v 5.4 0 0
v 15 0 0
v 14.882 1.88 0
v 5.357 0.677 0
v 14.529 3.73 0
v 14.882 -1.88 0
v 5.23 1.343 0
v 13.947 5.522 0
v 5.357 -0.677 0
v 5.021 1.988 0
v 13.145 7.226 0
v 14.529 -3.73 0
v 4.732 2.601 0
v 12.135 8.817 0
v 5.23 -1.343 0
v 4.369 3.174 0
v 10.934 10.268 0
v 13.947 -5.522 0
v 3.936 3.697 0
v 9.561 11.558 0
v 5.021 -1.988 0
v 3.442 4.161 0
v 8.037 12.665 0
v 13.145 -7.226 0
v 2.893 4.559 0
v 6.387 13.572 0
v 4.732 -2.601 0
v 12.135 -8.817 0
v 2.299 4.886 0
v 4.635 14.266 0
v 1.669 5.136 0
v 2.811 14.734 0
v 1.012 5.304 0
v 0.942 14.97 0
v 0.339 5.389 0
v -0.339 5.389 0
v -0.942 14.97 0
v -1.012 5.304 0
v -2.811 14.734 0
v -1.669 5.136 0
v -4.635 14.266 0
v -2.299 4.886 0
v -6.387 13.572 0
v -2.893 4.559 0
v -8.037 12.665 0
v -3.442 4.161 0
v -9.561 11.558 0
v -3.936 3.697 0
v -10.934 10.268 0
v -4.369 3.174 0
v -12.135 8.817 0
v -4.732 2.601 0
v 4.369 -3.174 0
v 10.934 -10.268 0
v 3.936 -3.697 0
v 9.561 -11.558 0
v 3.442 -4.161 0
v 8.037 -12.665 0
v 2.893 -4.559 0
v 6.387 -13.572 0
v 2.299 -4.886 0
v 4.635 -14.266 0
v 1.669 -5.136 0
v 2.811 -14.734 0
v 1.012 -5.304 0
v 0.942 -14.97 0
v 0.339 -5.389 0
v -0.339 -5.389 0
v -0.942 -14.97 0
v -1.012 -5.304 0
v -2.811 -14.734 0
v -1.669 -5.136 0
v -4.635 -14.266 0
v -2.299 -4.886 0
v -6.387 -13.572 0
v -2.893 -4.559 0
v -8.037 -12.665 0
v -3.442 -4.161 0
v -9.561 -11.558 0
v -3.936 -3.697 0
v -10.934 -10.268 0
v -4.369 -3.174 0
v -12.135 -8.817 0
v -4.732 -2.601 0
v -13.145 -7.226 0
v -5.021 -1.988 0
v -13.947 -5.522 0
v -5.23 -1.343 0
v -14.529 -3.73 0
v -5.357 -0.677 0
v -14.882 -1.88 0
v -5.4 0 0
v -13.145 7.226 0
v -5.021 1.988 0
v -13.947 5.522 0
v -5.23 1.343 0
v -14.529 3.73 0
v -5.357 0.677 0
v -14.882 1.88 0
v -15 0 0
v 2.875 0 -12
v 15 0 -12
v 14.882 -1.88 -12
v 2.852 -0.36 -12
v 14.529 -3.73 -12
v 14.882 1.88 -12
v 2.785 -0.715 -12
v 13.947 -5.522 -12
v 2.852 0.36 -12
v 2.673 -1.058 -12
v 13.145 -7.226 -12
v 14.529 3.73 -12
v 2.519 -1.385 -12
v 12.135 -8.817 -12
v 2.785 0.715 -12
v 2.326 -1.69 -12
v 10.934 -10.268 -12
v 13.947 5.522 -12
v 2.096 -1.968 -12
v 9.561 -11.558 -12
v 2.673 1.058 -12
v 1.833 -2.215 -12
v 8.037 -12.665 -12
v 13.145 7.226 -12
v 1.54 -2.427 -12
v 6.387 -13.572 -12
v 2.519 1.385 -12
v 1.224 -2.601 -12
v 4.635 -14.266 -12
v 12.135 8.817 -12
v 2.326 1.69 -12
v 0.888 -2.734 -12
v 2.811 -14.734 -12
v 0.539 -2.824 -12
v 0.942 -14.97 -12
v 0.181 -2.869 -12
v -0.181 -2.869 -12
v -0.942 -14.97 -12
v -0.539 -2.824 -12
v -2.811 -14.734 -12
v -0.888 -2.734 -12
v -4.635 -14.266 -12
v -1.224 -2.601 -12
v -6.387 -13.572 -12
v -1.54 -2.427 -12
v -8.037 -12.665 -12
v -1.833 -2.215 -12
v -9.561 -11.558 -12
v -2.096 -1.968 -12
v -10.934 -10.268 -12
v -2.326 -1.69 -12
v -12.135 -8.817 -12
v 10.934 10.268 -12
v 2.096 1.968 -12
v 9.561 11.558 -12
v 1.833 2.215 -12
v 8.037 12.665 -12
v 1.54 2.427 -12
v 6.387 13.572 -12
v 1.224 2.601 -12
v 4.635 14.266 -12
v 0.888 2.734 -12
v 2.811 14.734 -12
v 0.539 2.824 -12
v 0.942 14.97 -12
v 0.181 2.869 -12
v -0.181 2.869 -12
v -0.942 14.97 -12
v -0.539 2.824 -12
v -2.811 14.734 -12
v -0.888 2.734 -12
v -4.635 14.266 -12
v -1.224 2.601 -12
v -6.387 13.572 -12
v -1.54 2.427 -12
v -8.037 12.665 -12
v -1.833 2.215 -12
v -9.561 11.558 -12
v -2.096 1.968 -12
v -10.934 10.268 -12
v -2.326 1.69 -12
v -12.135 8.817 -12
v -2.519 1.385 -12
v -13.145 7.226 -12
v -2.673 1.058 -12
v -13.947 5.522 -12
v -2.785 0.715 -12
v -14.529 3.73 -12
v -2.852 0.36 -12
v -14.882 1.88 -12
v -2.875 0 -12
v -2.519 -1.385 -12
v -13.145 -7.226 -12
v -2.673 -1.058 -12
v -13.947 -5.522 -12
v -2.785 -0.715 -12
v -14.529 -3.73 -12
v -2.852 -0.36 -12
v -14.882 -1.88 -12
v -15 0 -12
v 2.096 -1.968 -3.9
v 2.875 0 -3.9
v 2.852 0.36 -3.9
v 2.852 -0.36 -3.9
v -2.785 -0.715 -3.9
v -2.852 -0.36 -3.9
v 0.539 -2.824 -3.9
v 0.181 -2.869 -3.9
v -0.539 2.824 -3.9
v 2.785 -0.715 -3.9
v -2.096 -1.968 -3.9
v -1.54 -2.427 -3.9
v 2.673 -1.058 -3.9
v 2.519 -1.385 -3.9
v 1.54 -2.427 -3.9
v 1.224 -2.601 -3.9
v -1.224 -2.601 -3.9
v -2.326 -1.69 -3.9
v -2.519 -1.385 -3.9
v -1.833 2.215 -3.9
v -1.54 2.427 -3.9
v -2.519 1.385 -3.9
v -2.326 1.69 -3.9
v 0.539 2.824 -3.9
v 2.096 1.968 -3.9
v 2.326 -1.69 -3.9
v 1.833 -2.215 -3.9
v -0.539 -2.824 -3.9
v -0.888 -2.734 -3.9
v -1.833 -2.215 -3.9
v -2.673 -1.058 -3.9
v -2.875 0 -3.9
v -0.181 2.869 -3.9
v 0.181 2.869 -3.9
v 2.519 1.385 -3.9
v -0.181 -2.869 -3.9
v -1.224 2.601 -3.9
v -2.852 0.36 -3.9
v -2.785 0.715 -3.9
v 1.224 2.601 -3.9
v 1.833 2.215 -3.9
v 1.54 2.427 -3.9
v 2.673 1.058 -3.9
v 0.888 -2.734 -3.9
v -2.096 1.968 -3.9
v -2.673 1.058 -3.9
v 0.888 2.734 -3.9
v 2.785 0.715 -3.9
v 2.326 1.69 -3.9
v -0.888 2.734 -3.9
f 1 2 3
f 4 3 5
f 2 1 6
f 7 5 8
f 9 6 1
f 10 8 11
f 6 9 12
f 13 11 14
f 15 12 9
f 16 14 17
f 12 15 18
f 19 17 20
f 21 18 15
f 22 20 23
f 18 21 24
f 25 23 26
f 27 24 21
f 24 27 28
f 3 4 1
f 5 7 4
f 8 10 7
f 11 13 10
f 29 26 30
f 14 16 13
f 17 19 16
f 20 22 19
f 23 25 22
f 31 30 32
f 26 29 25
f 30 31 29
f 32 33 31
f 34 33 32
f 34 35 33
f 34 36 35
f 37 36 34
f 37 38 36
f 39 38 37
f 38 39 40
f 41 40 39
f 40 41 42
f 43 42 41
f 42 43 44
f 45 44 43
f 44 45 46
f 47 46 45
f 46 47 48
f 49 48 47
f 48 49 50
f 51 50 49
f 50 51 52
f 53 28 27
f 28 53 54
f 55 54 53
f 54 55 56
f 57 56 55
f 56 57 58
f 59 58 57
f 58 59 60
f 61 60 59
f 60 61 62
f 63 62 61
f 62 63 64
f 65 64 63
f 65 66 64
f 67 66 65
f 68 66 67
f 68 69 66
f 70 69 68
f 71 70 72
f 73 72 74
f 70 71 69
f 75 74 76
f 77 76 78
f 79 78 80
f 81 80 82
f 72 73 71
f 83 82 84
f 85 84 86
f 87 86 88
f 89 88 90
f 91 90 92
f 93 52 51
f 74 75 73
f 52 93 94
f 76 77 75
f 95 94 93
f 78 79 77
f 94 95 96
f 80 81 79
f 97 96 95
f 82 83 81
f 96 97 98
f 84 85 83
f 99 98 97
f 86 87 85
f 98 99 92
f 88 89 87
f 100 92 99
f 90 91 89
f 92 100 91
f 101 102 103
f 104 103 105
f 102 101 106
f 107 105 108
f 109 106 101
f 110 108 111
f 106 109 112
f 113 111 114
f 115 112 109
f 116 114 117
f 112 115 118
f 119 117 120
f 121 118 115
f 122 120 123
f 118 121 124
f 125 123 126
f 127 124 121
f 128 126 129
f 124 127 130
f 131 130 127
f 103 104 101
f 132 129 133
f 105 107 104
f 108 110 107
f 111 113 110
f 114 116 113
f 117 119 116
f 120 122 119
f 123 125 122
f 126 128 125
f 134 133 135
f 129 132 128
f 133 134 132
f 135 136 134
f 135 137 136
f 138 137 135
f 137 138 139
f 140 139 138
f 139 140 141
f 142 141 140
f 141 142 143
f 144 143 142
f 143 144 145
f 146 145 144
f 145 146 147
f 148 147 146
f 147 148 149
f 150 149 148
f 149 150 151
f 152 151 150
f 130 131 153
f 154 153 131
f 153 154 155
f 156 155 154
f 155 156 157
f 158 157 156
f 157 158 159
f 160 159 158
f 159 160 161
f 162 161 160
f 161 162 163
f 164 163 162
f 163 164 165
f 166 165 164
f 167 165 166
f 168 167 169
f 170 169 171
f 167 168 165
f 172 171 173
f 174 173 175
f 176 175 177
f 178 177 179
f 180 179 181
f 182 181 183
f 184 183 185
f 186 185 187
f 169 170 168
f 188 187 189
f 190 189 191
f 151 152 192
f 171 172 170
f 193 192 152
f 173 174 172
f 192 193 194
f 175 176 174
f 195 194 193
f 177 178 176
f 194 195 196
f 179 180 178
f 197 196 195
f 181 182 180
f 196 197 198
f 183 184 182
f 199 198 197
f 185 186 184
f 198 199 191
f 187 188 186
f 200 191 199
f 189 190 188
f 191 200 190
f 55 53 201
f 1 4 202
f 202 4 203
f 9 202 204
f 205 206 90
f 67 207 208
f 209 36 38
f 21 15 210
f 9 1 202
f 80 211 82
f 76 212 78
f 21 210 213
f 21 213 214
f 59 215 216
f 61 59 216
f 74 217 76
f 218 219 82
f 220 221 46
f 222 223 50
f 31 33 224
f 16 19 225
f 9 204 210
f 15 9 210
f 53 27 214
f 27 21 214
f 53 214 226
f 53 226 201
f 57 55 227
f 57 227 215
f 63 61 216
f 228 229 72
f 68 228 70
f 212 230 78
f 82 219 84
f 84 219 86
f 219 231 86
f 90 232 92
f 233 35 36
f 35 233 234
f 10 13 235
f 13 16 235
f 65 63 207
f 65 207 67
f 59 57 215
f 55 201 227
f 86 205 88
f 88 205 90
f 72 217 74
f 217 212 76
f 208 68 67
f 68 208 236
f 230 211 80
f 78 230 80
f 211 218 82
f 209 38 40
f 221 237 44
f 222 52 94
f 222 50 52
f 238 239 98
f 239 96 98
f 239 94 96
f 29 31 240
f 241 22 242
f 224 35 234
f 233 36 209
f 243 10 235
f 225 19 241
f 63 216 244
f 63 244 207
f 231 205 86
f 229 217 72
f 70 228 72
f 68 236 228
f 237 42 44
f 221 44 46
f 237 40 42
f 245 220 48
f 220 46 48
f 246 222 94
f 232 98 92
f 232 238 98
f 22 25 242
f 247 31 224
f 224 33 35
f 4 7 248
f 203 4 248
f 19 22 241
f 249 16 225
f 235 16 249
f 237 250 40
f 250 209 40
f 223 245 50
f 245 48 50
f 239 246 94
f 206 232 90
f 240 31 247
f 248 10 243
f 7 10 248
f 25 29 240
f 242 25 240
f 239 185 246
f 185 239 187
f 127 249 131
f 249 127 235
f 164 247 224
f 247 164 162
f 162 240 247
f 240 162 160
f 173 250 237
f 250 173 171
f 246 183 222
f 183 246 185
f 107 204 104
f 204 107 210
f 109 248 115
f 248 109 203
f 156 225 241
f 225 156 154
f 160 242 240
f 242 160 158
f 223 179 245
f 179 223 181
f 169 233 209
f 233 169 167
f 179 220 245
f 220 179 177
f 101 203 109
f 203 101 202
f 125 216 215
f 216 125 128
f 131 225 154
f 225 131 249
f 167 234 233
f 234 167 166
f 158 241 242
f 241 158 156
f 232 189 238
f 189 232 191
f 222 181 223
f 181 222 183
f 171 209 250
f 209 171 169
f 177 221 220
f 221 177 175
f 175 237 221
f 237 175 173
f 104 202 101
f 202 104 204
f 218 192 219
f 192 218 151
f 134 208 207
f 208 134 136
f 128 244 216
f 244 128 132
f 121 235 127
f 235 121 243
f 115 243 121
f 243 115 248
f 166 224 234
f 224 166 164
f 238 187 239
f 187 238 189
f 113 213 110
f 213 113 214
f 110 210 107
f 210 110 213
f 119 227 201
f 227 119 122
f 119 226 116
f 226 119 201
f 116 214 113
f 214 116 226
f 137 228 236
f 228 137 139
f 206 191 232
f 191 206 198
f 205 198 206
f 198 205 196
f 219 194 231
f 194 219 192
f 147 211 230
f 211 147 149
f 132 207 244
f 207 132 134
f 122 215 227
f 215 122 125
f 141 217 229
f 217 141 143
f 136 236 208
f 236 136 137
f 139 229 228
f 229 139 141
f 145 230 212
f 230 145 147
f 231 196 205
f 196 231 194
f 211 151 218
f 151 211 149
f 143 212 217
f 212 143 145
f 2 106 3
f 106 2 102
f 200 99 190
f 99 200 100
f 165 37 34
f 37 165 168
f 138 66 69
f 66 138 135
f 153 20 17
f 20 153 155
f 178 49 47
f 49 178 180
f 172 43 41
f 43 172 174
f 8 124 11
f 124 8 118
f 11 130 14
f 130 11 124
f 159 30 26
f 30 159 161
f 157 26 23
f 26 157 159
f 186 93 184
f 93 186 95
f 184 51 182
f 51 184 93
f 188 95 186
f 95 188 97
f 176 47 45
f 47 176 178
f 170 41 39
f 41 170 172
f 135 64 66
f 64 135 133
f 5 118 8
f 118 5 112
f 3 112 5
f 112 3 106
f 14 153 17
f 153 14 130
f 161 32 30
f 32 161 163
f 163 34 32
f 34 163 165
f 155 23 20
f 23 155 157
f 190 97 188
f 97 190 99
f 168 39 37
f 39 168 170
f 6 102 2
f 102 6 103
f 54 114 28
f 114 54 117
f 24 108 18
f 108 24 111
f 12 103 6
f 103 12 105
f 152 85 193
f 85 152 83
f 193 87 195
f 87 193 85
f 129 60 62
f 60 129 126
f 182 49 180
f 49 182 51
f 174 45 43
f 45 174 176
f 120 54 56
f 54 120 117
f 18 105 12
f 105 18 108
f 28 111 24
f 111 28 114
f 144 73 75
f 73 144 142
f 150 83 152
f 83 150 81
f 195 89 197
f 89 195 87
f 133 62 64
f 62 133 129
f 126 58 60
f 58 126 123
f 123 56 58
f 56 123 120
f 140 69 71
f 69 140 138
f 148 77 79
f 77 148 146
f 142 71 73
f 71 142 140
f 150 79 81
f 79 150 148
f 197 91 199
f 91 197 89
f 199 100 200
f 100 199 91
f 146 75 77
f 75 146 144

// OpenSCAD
$fn = 50;


difference() {
	union() {
		translate(v = [0, 0, -12.0000000000]) {
			cylinder(h = 12, r = 15.0000000000);
		}
	}
	union() {
		translate(v = [0, 0, 0]) {
			rotate(a = [0, 0, 0]) {
				difference() {
					union() {
						translate(v = [0, 0, -12.0000000000]) {
							cylinder(h = 12, r = 2.6000000000);
						}
						translate(v = [0, 0, -3.9000000000]) {
							cylinder(h = 3.9000000000, r1 = 2.8750000000, r2 = 5.4000000000);
						}
						translate(v = [0, 0, -12.0000000000]) {
							cylinder(h = 12, r = 2.8750000000);
						}
						translate(v = [0, 0, -12.0000000000]) {
							cylinder(h = 12, r = 2.6000000000);
						}
					}
					union();
				}
			}
		}
	}
}
